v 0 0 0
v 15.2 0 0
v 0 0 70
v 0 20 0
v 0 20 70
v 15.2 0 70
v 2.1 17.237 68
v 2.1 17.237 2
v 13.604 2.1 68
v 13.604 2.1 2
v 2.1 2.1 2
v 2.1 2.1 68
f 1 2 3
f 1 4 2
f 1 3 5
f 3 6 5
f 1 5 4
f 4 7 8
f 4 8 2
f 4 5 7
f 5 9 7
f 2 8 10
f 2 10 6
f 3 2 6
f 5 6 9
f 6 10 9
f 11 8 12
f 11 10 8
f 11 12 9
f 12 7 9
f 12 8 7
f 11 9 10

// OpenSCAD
base = 15.2;
height = 20;
length = 70;
wall = 2;

factor = (height - wall)/height;

module triangle(x, y) {
    polygon([[0, y], [0, 0], [x,0]]);
}

module main_prism() {
    linear_extrude(length)
    triangle(base, height);
}

module diff_prism() {
    translate([wall + 0.1, wall + 0.1, wall]) 
        linear_extrude(length - wall * 2)
            scale([factor, factor]) triangle(base, height);
}

difference() {
    main_prism();
    diff_prism();
}
